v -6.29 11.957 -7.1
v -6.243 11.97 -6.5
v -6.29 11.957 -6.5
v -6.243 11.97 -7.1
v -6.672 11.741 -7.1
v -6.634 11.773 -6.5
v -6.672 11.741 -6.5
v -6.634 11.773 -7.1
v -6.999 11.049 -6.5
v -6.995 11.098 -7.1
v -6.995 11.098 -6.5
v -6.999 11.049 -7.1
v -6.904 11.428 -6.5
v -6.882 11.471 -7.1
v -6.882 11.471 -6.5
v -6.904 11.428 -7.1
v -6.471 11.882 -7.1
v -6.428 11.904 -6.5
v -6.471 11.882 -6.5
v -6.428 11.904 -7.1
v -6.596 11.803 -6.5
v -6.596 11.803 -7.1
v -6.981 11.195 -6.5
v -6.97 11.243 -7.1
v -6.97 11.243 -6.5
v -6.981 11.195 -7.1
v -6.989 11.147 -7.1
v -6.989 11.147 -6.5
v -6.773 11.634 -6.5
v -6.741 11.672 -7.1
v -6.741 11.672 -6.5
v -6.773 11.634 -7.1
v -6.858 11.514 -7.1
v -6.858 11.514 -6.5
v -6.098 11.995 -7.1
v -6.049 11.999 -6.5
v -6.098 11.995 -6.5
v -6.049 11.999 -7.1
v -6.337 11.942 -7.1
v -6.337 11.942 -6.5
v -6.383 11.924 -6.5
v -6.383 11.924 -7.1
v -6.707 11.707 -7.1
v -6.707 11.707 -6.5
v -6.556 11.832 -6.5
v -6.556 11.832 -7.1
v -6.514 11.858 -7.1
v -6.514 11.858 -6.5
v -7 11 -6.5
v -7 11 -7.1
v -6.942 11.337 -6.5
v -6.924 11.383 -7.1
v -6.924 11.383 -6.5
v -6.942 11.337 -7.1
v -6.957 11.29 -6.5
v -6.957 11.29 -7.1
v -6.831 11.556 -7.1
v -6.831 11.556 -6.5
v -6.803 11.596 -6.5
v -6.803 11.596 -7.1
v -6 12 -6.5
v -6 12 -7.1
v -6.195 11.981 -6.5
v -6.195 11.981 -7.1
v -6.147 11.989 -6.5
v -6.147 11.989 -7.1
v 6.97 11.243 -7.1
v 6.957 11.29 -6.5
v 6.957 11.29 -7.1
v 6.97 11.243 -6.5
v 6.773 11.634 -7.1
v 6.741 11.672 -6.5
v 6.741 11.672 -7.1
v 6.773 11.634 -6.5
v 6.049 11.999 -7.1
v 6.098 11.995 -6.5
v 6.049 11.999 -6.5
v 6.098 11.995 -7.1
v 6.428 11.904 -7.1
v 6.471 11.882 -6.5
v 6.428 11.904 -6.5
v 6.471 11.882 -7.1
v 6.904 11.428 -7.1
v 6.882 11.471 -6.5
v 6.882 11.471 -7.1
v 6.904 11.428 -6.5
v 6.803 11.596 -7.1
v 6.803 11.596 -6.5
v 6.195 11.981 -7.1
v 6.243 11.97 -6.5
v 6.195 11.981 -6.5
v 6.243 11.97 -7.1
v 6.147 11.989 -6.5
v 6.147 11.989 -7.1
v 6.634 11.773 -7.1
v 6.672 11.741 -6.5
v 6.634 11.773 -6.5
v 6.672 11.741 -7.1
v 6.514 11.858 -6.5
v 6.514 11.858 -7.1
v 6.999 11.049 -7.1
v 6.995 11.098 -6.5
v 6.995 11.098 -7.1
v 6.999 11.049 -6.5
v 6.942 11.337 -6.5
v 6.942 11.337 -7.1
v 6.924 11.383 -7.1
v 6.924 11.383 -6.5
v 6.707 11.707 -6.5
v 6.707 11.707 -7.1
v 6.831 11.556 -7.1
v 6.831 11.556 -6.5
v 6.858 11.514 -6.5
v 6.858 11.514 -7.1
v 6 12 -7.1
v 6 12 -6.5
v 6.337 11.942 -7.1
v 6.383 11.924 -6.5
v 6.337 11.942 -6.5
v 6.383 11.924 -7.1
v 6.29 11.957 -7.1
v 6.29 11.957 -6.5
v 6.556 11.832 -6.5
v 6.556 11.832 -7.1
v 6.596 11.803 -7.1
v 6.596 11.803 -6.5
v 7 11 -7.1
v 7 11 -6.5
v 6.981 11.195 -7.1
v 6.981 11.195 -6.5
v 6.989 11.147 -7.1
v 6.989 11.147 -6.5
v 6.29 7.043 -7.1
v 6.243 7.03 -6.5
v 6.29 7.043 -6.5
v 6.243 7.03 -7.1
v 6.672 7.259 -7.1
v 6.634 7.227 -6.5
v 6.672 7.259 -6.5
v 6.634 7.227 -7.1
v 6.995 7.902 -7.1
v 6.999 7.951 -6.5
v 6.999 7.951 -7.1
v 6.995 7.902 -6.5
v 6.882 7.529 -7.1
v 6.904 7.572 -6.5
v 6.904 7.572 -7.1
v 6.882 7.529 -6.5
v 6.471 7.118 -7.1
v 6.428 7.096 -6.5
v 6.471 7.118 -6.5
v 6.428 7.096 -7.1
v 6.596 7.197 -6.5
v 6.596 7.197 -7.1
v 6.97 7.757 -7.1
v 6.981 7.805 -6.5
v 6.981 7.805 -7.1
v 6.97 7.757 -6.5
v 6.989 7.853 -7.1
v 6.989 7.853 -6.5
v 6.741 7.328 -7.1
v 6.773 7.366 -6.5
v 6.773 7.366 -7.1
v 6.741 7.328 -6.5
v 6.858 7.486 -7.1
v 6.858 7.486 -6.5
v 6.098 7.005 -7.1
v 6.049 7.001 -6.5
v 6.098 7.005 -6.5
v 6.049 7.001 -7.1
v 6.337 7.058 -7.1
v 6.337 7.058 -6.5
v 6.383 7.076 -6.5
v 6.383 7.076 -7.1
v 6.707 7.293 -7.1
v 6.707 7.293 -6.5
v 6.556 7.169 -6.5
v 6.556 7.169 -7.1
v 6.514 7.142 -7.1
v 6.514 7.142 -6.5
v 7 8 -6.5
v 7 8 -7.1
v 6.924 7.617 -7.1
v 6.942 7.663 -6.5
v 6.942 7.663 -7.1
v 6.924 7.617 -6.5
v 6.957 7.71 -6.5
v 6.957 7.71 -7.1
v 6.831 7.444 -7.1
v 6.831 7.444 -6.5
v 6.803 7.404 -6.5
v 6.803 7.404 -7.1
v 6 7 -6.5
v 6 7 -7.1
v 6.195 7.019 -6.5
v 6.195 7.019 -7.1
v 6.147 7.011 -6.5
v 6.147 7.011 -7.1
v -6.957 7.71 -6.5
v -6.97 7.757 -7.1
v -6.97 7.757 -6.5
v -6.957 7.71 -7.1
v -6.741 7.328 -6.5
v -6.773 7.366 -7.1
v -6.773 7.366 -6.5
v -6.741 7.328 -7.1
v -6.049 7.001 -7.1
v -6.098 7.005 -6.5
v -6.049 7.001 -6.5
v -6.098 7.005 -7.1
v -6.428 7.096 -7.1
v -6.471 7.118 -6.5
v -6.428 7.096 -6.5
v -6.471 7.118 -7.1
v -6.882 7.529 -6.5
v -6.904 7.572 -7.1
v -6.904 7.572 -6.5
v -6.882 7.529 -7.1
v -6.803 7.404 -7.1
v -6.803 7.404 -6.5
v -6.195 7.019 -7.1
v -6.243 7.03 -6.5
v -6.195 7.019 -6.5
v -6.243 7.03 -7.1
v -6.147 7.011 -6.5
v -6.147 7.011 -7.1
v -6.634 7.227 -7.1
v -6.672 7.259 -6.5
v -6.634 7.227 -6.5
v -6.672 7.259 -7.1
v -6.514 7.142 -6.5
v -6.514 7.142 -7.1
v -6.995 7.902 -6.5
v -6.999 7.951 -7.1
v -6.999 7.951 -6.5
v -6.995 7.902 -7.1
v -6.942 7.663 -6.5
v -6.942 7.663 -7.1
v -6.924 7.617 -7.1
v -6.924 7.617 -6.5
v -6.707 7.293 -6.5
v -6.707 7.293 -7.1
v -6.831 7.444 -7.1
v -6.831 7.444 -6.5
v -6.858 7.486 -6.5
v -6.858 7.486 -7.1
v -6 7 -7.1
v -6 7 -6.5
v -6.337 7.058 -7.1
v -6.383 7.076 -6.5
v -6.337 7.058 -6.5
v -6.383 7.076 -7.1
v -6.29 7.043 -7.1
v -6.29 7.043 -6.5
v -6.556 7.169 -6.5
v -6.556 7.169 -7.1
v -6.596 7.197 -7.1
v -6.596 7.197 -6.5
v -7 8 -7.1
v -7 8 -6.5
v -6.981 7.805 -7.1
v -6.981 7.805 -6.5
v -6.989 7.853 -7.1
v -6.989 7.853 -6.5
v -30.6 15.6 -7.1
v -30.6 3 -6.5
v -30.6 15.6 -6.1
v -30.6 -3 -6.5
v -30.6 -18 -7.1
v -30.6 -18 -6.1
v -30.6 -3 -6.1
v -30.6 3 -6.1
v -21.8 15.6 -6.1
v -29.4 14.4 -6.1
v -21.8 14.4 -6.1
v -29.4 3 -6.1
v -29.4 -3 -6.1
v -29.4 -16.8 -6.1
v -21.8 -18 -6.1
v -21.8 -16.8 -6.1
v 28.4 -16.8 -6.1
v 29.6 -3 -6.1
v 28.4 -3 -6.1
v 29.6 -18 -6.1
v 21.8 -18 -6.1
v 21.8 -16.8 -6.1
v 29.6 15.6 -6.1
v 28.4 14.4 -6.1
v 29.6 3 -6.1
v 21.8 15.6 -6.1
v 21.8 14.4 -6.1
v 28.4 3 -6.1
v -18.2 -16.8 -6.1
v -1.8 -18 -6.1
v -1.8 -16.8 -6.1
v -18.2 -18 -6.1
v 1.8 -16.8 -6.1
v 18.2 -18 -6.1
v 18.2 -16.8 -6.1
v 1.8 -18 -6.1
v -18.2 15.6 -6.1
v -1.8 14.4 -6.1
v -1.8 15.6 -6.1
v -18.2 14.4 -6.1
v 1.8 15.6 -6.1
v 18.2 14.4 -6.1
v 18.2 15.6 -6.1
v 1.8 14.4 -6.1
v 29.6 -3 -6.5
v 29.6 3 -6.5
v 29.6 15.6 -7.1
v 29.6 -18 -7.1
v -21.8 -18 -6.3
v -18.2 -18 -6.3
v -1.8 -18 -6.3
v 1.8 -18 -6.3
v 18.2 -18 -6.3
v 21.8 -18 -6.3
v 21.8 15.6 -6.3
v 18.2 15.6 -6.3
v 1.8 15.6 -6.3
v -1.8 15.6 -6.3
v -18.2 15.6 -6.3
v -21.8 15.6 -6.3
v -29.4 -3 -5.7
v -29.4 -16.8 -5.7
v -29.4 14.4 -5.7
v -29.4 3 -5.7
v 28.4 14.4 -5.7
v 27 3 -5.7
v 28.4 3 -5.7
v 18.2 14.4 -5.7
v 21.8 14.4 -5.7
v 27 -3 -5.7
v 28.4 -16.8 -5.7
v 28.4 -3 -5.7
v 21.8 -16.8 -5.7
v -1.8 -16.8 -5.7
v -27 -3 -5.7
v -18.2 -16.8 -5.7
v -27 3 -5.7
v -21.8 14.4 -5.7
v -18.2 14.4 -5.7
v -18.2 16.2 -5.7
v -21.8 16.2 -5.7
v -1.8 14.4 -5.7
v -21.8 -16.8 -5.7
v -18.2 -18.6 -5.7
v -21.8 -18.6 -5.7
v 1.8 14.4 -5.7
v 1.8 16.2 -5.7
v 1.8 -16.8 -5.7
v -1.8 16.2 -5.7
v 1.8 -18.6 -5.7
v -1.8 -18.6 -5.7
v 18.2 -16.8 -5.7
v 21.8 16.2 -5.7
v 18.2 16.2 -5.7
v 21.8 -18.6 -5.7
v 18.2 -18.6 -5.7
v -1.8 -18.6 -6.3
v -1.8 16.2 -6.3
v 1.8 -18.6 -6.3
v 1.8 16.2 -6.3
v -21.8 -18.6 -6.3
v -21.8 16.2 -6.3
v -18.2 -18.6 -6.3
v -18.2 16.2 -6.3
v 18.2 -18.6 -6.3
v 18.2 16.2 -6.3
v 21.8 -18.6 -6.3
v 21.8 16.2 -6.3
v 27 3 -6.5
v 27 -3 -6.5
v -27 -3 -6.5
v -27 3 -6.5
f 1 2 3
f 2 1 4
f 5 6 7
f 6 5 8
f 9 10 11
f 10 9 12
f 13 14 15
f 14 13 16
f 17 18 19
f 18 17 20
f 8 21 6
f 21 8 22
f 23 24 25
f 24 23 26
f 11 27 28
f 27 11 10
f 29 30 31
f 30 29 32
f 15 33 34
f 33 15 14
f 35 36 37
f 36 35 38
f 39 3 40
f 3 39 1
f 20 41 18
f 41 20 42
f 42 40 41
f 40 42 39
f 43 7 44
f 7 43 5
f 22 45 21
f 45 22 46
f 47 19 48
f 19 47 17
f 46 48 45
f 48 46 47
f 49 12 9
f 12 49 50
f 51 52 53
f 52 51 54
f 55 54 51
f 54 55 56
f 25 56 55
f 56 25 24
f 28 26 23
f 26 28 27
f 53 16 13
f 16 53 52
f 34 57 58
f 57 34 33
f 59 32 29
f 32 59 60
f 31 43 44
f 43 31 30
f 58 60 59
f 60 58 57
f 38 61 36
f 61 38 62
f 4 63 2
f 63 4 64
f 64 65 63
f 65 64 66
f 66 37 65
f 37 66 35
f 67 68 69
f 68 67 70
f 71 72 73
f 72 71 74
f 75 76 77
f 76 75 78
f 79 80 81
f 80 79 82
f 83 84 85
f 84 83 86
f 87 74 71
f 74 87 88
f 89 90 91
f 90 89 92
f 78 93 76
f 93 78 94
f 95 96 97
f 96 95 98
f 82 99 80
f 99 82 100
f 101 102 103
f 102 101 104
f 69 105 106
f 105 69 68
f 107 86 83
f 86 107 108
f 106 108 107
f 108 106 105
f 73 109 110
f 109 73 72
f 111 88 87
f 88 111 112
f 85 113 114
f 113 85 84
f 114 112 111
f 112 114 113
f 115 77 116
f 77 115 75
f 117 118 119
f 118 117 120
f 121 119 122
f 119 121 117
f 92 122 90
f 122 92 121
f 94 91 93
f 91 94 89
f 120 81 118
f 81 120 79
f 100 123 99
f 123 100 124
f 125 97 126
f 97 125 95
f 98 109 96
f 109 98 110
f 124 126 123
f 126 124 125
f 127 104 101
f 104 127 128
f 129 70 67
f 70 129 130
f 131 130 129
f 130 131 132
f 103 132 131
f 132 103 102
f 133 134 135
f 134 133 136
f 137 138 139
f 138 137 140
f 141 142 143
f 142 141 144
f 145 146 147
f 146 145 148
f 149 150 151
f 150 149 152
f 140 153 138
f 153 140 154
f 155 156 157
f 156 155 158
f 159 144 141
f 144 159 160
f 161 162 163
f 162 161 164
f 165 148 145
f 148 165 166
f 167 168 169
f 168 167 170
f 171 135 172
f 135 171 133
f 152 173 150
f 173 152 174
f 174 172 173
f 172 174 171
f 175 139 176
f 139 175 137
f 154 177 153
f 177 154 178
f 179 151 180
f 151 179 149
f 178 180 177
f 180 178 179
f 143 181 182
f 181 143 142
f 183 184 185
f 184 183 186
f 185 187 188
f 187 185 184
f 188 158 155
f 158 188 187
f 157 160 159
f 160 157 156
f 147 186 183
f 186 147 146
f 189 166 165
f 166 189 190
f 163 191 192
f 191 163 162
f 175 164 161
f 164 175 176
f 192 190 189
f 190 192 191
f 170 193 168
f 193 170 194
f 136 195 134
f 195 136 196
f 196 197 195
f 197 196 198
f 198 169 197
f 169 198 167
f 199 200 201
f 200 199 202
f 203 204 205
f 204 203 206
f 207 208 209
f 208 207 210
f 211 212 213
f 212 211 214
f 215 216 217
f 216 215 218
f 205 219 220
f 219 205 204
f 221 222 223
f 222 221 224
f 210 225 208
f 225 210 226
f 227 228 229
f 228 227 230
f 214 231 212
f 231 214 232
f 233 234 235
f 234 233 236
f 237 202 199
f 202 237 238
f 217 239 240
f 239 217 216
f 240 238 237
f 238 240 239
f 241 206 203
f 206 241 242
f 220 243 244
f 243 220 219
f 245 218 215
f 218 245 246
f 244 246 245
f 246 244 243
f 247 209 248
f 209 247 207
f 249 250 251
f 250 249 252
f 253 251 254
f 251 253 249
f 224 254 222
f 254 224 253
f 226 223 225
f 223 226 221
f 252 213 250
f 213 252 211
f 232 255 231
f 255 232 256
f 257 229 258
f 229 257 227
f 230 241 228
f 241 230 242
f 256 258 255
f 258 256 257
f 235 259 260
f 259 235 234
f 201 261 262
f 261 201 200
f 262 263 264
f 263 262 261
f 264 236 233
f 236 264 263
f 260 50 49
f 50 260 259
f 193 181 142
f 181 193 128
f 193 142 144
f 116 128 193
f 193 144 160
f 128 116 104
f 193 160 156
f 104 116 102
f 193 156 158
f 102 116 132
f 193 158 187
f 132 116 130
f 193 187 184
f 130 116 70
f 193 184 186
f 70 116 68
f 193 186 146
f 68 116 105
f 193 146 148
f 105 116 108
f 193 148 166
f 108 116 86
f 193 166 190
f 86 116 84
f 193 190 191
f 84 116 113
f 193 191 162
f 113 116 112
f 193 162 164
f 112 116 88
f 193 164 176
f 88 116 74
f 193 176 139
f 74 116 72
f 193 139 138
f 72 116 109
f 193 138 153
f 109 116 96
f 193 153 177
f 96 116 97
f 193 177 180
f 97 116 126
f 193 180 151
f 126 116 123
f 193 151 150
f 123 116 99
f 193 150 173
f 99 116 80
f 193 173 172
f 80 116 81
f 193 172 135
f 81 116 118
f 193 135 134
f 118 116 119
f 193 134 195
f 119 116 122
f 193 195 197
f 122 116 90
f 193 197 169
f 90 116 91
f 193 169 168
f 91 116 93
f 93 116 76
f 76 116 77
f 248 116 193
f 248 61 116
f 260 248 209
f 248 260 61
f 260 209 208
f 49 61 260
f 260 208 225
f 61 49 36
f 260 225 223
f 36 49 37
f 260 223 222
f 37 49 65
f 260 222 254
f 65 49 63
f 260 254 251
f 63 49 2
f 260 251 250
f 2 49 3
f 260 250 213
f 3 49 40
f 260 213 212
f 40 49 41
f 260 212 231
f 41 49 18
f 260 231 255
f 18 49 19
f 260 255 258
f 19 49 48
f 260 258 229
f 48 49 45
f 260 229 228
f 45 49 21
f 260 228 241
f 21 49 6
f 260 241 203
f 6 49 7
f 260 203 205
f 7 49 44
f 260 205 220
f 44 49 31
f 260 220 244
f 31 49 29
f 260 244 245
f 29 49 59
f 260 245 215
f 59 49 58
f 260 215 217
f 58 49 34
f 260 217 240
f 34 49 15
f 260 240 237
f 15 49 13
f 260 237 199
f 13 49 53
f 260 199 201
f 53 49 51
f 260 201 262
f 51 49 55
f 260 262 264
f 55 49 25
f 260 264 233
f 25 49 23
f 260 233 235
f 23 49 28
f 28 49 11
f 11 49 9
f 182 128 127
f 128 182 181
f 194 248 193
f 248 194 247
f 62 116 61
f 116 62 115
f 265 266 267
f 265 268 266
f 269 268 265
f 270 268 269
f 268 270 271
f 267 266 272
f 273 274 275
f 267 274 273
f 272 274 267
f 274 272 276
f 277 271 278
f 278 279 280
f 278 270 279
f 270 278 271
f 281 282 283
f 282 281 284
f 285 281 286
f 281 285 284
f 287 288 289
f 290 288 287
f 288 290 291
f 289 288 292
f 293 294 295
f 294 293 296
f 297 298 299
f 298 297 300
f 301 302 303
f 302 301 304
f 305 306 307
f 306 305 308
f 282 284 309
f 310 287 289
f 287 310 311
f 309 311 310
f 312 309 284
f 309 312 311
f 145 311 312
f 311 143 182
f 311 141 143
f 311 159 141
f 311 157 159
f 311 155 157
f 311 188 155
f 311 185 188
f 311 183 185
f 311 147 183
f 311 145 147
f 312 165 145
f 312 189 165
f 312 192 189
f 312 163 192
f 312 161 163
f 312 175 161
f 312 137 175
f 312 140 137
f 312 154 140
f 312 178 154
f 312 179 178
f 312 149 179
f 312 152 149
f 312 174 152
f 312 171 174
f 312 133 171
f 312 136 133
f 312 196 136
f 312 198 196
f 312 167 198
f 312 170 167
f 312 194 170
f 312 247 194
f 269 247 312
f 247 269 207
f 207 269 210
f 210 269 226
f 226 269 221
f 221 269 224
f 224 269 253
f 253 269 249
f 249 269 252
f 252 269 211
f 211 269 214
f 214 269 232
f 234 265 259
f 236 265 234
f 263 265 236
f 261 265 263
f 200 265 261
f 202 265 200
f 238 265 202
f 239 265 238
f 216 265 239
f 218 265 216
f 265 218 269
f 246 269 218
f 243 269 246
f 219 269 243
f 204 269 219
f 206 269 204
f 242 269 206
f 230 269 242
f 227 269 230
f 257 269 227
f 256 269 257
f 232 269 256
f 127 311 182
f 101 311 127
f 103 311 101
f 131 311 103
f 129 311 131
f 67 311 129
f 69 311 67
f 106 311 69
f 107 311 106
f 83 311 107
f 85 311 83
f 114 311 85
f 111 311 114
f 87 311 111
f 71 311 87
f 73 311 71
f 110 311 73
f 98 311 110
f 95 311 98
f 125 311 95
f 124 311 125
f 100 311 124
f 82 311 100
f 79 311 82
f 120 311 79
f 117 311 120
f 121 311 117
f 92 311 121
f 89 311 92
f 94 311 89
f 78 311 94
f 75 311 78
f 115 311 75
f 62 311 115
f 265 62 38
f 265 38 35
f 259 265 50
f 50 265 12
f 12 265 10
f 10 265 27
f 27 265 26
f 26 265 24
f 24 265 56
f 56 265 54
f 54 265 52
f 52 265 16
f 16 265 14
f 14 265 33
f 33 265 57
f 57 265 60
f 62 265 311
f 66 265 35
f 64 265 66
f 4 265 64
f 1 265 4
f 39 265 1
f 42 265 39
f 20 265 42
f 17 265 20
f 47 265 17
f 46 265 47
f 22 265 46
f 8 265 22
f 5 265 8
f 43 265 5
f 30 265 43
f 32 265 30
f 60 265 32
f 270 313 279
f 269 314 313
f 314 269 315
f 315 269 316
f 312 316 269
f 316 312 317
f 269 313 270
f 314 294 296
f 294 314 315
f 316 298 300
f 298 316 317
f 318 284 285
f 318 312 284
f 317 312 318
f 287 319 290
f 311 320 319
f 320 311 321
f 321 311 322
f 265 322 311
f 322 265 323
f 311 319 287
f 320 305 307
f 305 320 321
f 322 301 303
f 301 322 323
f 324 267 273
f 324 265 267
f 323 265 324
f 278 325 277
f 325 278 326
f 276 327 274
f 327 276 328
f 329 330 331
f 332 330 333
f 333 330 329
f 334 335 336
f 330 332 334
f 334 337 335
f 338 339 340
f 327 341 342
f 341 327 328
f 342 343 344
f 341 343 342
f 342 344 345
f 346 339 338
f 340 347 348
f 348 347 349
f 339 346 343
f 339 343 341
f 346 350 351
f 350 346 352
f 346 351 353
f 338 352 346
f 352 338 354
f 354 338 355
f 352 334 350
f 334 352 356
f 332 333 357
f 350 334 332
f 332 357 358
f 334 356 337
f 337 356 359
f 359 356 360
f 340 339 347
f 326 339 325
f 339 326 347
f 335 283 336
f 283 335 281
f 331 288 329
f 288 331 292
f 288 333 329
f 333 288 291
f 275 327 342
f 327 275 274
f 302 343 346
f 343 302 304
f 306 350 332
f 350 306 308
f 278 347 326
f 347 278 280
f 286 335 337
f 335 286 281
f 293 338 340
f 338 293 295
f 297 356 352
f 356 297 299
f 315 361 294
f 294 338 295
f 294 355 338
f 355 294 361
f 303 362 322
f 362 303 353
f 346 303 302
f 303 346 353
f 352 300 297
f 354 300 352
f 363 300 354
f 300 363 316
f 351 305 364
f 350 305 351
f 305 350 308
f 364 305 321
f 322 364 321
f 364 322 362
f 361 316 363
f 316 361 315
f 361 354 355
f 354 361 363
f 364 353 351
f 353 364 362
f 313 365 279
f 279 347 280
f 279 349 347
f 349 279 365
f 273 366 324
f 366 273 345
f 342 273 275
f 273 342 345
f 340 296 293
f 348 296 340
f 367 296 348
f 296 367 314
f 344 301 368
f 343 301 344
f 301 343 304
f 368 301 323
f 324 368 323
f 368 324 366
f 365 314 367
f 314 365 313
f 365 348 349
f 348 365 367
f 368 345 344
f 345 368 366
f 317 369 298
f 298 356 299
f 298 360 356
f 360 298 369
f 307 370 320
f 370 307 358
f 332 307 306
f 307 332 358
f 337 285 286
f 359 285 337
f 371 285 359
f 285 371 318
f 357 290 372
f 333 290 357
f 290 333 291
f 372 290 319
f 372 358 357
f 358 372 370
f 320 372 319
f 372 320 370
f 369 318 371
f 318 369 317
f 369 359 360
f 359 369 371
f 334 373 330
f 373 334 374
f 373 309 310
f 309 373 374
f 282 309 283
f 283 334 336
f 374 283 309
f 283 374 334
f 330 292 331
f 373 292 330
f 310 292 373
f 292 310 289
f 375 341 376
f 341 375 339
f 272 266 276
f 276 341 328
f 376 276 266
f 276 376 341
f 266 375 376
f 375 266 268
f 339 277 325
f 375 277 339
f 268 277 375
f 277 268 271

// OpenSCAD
/*
	roundedCube() v1.0.3 by robert@cosmicrealms.com from https://github.com/Sembiance/openscad-modules
	Allows you to round any edge of a cube
	
	Usage
	=====
	Prototype: roundedCube(dim, r, x, y, z, xcorners, ycorners, zcorners, $fn)
	Arguments:
		-      dim = Array of x,y,z numbers representing cube size
		-        r = Radius of corners. Default: 1
		-        x = Round the corners along the X axis of the cube. Default: false
		-        y = Round the corners along the Y axis of the cube. Default: false
		-        z = Round the corners along the Z axis of the cube. Default: true
		- xcorners = Array of 4 booleans, one for each X side of the cube, if true then round that side. Default: [true, true, true, true]
		- ycorners = Array of 4 booleans, one for each Y side of the cube, if true then round that side. Default: [true, true, true, true]
		- zcorners = Array of 4 booleans, one for each Z side of the cube, if true then round that side. Default: [true, true, true, true]
		-       rx = Radius of the x corners. Default: [r, r, r, r]
		-       ry = Radius of the y corners. Default: [r, r, r, r]
		-       rz = Radius of the z corners. Default: [r, r, r, r]
		-   center = Whether to render the cube centered or not. Default: false
		-      $fn = How smooth you want the rounding to be. Default: 128

	Change Log
	==========
	2018-08-21: v1.0.3 - Added ability to set the radius of each corner individually with vectors: rx, ry, rz
	2017-05-15: v1.0.2 - Fixed bugs relating to rounding corners on the X axis
	2017-04-22: v1.0.1 - Added center option
	2017-01-04: v1.0.0 - Initial Release

	Thanks to Sergio Vilches for the initial code inspiration
*/

// Example code:

/*cube([5, 10, 4]);

translate([8, 0, 0]) { roundedCube([5, 10, 4], r=1); }
translate([16, 0, 0]) { roundedCube([5, 10, 4], r=1, zcorners=[true, false, true, false]); }

translate([24, 0, 0]) { roundedCube([5, 10, 4], r=1, y=true, z=false); }
translate([32, 0, 0]) { roundedCube([5, 10, 4], r=1, x=true, z=false); }
translate([40, 0, 0]) { roundedCube([5, 10, 4], r=1, x=true, y=true, z=true); }
*/

module roundedCube(dim, r=1, x=false, y=false, z=true, xcorners=[true,true,true,true], ycorners=[true,true,true,true], zcorners=[true,true,true,true], center=false, rx=[undef, undef, undef, undef], ry=[undef, undef, undef, undef], rz=[undef, undef, undef, undef], $fn=128)
{
	translate([(center==true ? (-(dim[0]/2)) : 0), (center==true ? (-(dim[1]/2)) : 0), (center==true ? (-(dim[2]/2)) : 0)])
	{
		difference()
		{
			cube(dim);

			if(z)
			{
				translate([0, 0, -0.1])
				{
					if(zcorners[0])
						translate([0, dim[1]-(rz[0]==undef ? r : rz[0])]) { rotateAround([0, 0, 90], [(rz[0]==undef ? r : rz[0])/2, (rz[0]==undef ? r : rz[0])/2, 0]) { meniscus(h=dim[2], r=(rz[0]==undef ? r : rz[0]), fn=$fn); } }
					if(zcorners[1])
						translate([dim[0]-(rz[1]==undef ? r : rz[1]), dim[1]-(rz[1]==undef ? r : rz[1])]) { meniscus(h=dim[2], r=(rz[1]==undef ? r : rz[1]), fn=$fn); }
					if(zcorners[2])
						translate([dim[0]-(rz[2]==undef ? r : rz[2]), 0]) { rotateAround([0, 0, -90], [(rz[2]==undef ? r : rz[2])/2, (rz[2]==undef ? r : rz[2])/2, 0]) { meniscus(h=dim[2], r=(rz[2]==undef ? r : rz[2]), fn=$fn); } }
					if(zcorners[3])
						rotateAround([0, 0, -180], [(rz[3]==undef ? r : rz[3])/2, (rz[3]==undef ? r : rz[3])/2, 0]) { meniscus(h=dim[2], r=(rz[3]==undef ? r : rz[3]), fn=$fn); }
				}
			}

			if(y)
			{
				translate([0, -0.1, 0])
				{
					if(ycorners[0])
						translate([0, 0, dim[2]-(ry[0]==undef ? r : ry[0])]) { rotateAround([0, 180, 0], [(ry[0]==undef ? r : ry[0])/2, 0, (ry[0]==undef ? r : ry[0])/2]) { rotateAround([-90, 0, 0], [0, (ry[0]==undef ? r : ry[0])/2, (ry[0]==undef ? r : ry[0])/2]) { meniscus(h=dim[1], r=(ry[0]==undef ? r : ry[0])); } } }
					if(ycorners[1])
						translate([dim[0]-(ry[1]==undef ? r : ry[1]), 0, dim[2]-(ry[1]==undef ? r : ry[1])]) { rotateAround([0, -90, 0], [(ry[1]==undef ? r : ry[1])/2, 0, (ry[1]==undef ? r : ry[1])/2]) { rotateAround([-90, 0, 0], [0, (ry[1]==undef ? r : ry[1])/2, (ry[1]==undef ? r : ry[1])/2]) { meniscus(h=dim[1], r=(ry[1]==undef ? r : ry[1])); } } }
					if(ycorners[2])
						translate([dim[0]-(ry[2]==undef ? r : ry[2]), 0]) { rotateAround([-90, 0, 0], [0, (ry[2]==undef ? r : ry[2])/2, (ry[2]==undef ? r : ry[2])/2]) { meniscus(h=dim[1], r=(ry[2]==undef ? r : ry[2])); } }
					if(ycorners[3])
						rotateAround([0, 90, 0], [(ry[3]==undef ? r : ry[3])/2, 0, (ry[3]==undef ? r : ry[3])/2]) { rotateAround([-90, 0, 0], [0, (ry[3]==undef ? r : ry[3])/2, (ry[3]==undef ? r : ry[3])/2]) { meniscus(h=dim[1], r=(ry[3]==undef ? r : ry[3])); } }
				}
			}

			if(x)
			{
				translate([-0.1, 0, 0])
				{
					if(xcorners[0])
						translate([0, dim[1]-(rx[0]==undef ? r : rx[0])]) { rotateAround([0, 90, 0], [(rx[0]==undef ? r : rx[0])/2, 0, (rx[0]==undef ? r : rx[0])/2]) { meniscus(h=dim[0], r=(rx[0]==undef ? r : rx[0])); } }
					if(xcorners[1])
						translate([0, dim[1]-(rx[1]==undef ? r : rx[1]), dim[2]-(rx[1]==undef ? r : rx[1])]) { rotateAround([90, 0, 0], [0, (rx[1]==undef ? r : rx[1])/2, (rx[1]==undef ? r : rx[1])/2]) { rotateAround([0, 90, 0], [(rx[1]==undef ? r : rx[1])/2, 0, (rx[1]==undef ? r : rx[1])/2]) { meniscus(h=dim[0], r=(rx[1]==undef ? r : rx[1])); } } }
					if(xcorners[2])
						translate([0, 0, dim[2]-(rx[2]==undef ? r : rx[2])]) { rotateAround([180, 0, 0], [0, (rx[2]==undef ? r : rx[2])/2, (rx[2]==undef ? r : rx[2])/2]) { rotateAround([0, 90, 0], [(rx[2]==undef ? r : rx[2])/2, 0, (rx[2]==undef ? r : rx[2])/2]) { meniscus(h=dim[0], r=(rx[2]==undef ? r : rx[2])); } } }
					if(xcorners[3])
						rotateAround([-90, 0, 0], [0, (rx[3]==undef ? r : rx[3])/2, (rx[3]==undef ? r : rx[3])/2]) { rotateAround([0, 90, 0], [(rx[3]==undef ? r : rx[3])/2, 0, (rx[3]==undef ? r : rx[3])/2]) { meniscus(h=dim[0], r=(rx[3]==undef ? r : rx[3])); } }
				}
			}
		}
	}
}

module meniscus(h, r, fn=100)
{
	$fn=fn;

	difference()
	{
		cube([r+0.2, r+0.2, h+0.2]);
		translate([0, 0, -0.1]) { cylinder(h=h+0.4, r=r); }
	}
}

module rotateAround(a, v) { translate(v) { rotate(a) { translate(-v) { children(); } } } }

module pin(){
cylinder(r=0.9,h=6);
}

module hole(){
cylinder(r=1.0,h=26);
}

module hole2(){
cylinder(r=1.8,h=26);
}

module stub(){
difference(){
cylinder(r=2.6,h=1.8);
cylinder(r=0.8,h=6,center=true);
}
}

module cutout(x1,x2,y1,y2,z1,z2){
translate([x1,y1,z1])
roundedCube([x2-x1,y2-y1,z2-z1]);
}

module cutoutc(x1,x2,y1,y2,z1,z2){
translate([x1,y1,z1])
cube([x2-x1,y2-y1,z2-z1]);
}

$fn=200;
// pcb width
pcbw = 104;
// pcb height
pcbh = 46;
// wall thickness (top)
wt = 1.6;
// wall thickness (side)
wts = 2.4;
// opening expansion
fit = 0.4;
// total thickness
thk = 17;
// insert thickness
ith = 2.8;
difference(){
union(){
cutoutc(-29.6-1.0,28.6+1.0,-17.4-0.6,15+0.6,-(thk-ith)/2,-(thk-ith)/2+1.0);
cutoutc(-29.6+0.2,28.6-0.2,-17.4+0.6,15-0.6,-(thk-ith)/2+1.0,-(thk-ith)/2+1.4);

cutoutc(-2+0.2,2-0.2,-20.2+1.6,17.8-1.6,-(thk-ith)/2+0.8,-(thk-ith)/2+1.4);
cutoutc(-22+0.2,-18-0.2,-20.2+1.6,17.8-1.6,-(thk-ith)/2+0.8,-(thk-ith)/2+1.4);
cutoutc(18+0.2,22-0.2,-20.2+1.6,17.8-1.6,-(thk-ith)/2+0.8,-(thk-ith)/2+1.4);
}

cutout(-7,7,7,12,-15,-(thk-ith)/2+0.6);

cutoutc(27,32,-3,3,-(thk-ith)/2+0.6,0);
cutoutc(-32,-27,-3,3,-(thk-ith)/2+0.6,0);
}
